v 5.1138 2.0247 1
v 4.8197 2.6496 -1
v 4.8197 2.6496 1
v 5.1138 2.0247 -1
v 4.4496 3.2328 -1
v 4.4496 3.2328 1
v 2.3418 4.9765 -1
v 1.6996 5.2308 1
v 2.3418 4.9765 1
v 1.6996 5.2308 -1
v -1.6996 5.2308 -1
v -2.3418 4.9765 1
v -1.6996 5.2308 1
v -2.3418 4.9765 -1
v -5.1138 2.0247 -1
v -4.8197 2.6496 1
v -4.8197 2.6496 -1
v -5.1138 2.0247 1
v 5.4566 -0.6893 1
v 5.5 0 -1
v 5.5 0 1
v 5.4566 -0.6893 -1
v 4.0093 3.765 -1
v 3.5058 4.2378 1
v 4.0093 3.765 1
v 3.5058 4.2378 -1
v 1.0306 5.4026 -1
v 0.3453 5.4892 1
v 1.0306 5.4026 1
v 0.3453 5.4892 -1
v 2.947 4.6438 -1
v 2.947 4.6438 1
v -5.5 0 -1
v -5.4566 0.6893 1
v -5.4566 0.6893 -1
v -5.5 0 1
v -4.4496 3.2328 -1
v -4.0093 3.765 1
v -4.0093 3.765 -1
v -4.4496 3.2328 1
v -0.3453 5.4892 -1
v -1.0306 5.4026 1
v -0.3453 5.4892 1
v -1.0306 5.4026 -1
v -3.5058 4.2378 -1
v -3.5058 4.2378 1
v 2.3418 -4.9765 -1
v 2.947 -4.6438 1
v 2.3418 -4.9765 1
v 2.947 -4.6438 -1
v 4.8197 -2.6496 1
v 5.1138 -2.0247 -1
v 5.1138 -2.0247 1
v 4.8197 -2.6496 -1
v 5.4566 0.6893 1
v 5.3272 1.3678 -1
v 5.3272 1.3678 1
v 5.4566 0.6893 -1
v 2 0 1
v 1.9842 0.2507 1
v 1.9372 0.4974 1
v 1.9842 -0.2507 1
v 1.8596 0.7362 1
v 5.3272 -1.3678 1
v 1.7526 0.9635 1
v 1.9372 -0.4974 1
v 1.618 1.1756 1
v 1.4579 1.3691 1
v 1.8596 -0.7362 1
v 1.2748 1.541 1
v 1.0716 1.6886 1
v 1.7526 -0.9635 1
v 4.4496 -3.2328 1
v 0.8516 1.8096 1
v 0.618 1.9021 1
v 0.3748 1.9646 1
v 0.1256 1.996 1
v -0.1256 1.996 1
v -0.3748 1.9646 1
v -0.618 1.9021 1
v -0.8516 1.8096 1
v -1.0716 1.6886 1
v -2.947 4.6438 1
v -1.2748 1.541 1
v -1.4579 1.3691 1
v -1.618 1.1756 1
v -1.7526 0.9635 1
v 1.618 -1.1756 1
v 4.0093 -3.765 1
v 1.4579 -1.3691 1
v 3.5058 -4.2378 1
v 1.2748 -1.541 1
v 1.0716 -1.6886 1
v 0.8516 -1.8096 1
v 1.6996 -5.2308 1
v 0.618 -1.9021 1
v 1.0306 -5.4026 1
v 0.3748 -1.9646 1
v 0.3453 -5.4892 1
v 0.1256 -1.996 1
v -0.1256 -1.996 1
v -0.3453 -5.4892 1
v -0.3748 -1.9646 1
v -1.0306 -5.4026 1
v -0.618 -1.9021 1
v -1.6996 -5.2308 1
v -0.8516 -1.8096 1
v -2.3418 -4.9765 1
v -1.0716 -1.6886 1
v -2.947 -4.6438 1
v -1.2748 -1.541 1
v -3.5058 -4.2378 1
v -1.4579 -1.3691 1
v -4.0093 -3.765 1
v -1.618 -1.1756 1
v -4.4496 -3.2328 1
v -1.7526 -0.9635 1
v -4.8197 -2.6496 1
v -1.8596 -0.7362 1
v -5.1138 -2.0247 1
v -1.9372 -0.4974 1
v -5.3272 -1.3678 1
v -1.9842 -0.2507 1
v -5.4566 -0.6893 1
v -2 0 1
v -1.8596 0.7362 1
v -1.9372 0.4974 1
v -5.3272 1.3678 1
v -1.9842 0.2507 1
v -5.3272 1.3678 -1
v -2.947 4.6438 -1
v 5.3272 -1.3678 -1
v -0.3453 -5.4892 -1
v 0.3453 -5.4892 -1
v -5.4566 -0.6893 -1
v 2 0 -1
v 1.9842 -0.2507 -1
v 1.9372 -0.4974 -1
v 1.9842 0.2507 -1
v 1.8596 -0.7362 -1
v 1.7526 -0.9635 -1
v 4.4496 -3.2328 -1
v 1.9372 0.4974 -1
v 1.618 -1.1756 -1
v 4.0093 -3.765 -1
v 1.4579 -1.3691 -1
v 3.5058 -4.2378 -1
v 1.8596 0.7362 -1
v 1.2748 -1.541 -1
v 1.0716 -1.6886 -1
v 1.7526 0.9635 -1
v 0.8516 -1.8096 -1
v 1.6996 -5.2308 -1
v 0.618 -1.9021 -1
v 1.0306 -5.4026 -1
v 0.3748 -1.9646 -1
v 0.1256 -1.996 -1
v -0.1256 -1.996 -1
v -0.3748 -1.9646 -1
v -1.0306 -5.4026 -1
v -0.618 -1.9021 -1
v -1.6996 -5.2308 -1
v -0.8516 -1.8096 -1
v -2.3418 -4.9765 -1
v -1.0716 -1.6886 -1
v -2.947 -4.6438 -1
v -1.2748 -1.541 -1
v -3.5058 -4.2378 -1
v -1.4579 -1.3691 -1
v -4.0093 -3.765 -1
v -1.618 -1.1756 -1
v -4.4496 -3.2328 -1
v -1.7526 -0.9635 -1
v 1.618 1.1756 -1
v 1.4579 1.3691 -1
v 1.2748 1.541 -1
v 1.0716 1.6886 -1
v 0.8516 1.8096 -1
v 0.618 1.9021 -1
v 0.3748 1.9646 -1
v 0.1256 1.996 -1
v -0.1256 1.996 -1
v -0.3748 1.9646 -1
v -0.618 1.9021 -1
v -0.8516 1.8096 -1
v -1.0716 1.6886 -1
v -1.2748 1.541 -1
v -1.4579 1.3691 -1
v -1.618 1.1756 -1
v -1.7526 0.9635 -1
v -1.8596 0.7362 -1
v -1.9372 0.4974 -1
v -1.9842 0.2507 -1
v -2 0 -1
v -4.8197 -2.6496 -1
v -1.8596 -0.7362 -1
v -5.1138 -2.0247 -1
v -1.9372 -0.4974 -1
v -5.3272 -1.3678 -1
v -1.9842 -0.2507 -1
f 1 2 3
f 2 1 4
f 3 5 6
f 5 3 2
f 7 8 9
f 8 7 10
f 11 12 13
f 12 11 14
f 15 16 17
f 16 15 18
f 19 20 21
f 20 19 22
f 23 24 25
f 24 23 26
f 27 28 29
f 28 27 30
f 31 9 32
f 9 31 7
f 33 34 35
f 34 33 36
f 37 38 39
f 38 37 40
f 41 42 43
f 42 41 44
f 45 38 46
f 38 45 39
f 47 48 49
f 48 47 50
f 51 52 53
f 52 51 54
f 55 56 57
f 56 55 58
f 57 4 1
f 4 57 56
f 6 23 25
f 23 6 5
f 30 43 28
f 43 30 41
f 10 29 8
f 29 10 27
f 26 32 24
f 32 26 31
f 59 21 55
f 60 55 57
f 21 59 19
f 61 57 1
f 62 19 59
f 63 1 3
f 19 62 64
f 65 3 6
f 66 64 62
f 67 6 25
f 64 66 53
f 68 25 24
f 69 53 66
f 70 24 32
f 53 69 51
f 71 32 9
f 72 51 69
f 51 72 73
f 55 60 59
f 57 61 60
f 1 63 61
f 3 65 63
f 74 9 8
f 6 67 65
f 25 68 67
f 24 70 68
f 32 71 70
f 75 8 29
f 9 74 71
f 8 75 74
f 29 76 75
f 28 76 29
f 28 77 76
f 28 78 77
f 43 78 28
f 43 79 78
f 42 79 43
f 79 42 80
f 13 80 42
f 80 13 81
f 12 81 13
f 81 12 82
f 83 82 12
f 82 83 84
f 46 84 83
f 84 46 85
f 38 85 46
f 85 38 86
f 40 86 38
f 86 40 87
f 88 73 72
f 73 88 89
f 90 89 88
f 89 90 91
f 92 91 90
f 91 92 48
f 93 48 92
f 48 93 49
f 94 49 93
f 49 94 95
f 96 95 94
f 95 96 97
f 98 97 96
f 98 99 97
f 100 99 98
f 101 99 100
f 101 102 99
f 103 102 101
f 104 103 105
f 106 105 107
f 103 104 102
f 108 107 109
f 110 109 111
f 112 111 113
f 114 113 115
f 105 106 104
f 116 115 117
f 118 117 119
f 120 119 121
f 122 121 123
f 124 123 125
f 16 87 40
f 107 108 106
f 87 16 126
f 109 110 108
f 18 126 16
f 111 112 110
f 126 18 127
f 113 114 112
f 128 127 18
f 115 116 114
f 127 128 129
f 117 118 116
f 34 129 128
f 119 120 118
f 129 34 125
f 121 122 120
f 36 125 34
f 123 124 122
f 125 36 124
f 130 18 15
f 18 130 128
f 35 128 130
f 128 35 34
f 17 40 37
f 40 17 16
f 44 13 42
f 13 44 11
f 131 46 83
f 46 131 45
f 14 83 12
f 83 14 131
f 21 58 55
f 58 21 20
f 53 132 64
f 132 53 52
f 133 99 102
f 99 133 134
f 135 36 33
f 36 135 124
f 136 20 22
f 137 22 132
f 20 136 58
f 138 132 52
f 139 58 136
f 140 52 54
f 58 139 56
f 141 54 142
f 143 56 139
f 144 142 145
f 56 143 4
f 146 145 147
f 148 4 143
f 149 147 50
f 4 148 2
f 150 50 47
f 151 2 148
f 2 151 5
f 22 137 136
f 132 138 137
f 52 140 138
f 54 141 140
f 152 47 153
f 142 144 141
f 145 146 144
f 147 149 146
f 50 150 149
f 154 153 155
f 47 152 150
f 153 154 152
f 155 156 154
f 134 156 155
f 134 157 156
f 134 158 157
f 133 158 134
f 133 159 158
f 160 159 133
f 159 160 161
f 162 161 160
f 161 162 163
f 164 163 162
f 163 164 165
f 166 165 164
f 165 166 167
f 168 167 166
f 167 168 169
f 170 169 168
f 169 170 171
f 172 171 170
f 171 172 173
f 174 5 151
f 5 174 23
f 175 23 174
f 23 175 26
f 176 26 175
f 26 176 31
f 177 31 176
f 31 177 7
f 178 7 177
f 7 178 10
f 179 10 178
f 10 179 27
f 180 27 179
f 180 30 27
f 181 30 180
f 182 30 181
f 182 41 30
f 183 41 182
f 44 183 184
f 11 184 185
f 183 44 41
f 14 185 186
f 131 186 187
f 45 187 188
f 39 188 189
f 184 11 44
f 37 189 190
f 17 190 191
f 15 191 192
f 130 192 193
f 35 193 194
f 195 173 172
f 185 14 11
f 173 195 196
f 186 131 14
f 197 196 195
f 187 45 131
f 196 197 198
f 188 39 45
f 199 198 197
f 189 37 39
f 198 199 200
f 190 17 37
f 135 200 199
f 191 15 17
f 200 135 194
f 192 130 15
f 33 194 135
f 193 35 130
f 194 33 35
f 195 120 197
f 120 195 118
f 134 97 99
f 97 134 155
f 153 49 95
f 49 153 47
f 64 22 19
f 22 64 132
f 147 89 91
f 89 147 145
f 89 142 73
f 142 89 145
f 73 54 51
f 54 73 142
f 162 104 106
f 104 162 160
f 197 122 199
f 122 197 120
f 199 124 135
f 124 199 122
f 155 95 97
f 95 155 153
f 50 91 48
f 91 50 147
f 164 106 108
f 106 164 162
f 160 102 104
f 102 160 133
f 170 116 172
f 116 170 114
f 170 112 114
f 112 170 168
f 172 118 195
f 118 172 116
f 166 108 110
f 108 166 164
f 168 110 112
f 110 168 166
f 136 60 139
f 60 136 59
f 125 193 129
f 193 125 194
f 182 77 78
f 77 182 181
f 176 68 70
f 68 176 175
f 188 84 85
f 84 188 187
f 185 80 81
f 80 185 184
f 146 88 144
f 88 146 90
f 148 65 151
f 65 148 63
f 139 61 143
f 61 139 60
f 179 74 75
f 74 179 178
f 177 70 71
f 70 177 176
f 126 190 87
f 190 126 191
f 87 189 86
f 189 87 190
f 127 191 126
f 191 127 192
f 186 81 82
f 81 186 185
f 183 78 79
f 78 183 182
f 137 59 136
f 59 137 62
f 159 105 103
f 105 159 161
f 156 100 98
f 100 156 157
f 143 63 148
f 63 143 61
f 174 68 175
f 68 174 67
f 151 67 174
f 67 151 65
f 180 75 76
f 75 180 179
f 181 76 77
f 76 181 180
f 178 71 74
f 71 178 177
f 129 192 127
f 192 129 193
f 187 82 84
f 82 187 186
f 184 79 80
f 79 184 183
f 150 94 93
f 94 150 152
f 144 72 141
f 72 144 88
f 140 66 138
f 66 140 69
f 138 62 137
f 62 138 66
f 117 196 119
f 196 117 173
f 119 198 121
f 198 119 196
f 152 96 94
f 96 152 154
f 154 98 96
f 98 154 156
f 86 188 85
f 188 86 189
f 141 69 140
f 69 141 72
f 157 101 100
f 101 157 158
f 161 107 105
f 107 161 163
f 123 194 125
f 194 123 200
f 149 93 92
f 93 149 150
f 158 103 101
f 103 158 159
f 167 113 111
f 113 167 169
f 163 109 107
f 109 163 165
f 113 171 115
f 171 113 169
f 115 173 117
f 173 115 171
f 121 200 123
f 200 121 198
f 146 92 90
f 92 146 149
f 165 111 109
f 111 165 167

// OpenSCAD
$fn = 50;


difference() {
	union() {
		translate(v = [0, 0, -1.0000000000]) {
			cylinder(h = 2, r = 5.5000000000);
		}
	}
	union() {
		translate(v = [0, 0, -100.0000000000]) {
			cylinder(h = 200, r = 2);
		}
	}
}
